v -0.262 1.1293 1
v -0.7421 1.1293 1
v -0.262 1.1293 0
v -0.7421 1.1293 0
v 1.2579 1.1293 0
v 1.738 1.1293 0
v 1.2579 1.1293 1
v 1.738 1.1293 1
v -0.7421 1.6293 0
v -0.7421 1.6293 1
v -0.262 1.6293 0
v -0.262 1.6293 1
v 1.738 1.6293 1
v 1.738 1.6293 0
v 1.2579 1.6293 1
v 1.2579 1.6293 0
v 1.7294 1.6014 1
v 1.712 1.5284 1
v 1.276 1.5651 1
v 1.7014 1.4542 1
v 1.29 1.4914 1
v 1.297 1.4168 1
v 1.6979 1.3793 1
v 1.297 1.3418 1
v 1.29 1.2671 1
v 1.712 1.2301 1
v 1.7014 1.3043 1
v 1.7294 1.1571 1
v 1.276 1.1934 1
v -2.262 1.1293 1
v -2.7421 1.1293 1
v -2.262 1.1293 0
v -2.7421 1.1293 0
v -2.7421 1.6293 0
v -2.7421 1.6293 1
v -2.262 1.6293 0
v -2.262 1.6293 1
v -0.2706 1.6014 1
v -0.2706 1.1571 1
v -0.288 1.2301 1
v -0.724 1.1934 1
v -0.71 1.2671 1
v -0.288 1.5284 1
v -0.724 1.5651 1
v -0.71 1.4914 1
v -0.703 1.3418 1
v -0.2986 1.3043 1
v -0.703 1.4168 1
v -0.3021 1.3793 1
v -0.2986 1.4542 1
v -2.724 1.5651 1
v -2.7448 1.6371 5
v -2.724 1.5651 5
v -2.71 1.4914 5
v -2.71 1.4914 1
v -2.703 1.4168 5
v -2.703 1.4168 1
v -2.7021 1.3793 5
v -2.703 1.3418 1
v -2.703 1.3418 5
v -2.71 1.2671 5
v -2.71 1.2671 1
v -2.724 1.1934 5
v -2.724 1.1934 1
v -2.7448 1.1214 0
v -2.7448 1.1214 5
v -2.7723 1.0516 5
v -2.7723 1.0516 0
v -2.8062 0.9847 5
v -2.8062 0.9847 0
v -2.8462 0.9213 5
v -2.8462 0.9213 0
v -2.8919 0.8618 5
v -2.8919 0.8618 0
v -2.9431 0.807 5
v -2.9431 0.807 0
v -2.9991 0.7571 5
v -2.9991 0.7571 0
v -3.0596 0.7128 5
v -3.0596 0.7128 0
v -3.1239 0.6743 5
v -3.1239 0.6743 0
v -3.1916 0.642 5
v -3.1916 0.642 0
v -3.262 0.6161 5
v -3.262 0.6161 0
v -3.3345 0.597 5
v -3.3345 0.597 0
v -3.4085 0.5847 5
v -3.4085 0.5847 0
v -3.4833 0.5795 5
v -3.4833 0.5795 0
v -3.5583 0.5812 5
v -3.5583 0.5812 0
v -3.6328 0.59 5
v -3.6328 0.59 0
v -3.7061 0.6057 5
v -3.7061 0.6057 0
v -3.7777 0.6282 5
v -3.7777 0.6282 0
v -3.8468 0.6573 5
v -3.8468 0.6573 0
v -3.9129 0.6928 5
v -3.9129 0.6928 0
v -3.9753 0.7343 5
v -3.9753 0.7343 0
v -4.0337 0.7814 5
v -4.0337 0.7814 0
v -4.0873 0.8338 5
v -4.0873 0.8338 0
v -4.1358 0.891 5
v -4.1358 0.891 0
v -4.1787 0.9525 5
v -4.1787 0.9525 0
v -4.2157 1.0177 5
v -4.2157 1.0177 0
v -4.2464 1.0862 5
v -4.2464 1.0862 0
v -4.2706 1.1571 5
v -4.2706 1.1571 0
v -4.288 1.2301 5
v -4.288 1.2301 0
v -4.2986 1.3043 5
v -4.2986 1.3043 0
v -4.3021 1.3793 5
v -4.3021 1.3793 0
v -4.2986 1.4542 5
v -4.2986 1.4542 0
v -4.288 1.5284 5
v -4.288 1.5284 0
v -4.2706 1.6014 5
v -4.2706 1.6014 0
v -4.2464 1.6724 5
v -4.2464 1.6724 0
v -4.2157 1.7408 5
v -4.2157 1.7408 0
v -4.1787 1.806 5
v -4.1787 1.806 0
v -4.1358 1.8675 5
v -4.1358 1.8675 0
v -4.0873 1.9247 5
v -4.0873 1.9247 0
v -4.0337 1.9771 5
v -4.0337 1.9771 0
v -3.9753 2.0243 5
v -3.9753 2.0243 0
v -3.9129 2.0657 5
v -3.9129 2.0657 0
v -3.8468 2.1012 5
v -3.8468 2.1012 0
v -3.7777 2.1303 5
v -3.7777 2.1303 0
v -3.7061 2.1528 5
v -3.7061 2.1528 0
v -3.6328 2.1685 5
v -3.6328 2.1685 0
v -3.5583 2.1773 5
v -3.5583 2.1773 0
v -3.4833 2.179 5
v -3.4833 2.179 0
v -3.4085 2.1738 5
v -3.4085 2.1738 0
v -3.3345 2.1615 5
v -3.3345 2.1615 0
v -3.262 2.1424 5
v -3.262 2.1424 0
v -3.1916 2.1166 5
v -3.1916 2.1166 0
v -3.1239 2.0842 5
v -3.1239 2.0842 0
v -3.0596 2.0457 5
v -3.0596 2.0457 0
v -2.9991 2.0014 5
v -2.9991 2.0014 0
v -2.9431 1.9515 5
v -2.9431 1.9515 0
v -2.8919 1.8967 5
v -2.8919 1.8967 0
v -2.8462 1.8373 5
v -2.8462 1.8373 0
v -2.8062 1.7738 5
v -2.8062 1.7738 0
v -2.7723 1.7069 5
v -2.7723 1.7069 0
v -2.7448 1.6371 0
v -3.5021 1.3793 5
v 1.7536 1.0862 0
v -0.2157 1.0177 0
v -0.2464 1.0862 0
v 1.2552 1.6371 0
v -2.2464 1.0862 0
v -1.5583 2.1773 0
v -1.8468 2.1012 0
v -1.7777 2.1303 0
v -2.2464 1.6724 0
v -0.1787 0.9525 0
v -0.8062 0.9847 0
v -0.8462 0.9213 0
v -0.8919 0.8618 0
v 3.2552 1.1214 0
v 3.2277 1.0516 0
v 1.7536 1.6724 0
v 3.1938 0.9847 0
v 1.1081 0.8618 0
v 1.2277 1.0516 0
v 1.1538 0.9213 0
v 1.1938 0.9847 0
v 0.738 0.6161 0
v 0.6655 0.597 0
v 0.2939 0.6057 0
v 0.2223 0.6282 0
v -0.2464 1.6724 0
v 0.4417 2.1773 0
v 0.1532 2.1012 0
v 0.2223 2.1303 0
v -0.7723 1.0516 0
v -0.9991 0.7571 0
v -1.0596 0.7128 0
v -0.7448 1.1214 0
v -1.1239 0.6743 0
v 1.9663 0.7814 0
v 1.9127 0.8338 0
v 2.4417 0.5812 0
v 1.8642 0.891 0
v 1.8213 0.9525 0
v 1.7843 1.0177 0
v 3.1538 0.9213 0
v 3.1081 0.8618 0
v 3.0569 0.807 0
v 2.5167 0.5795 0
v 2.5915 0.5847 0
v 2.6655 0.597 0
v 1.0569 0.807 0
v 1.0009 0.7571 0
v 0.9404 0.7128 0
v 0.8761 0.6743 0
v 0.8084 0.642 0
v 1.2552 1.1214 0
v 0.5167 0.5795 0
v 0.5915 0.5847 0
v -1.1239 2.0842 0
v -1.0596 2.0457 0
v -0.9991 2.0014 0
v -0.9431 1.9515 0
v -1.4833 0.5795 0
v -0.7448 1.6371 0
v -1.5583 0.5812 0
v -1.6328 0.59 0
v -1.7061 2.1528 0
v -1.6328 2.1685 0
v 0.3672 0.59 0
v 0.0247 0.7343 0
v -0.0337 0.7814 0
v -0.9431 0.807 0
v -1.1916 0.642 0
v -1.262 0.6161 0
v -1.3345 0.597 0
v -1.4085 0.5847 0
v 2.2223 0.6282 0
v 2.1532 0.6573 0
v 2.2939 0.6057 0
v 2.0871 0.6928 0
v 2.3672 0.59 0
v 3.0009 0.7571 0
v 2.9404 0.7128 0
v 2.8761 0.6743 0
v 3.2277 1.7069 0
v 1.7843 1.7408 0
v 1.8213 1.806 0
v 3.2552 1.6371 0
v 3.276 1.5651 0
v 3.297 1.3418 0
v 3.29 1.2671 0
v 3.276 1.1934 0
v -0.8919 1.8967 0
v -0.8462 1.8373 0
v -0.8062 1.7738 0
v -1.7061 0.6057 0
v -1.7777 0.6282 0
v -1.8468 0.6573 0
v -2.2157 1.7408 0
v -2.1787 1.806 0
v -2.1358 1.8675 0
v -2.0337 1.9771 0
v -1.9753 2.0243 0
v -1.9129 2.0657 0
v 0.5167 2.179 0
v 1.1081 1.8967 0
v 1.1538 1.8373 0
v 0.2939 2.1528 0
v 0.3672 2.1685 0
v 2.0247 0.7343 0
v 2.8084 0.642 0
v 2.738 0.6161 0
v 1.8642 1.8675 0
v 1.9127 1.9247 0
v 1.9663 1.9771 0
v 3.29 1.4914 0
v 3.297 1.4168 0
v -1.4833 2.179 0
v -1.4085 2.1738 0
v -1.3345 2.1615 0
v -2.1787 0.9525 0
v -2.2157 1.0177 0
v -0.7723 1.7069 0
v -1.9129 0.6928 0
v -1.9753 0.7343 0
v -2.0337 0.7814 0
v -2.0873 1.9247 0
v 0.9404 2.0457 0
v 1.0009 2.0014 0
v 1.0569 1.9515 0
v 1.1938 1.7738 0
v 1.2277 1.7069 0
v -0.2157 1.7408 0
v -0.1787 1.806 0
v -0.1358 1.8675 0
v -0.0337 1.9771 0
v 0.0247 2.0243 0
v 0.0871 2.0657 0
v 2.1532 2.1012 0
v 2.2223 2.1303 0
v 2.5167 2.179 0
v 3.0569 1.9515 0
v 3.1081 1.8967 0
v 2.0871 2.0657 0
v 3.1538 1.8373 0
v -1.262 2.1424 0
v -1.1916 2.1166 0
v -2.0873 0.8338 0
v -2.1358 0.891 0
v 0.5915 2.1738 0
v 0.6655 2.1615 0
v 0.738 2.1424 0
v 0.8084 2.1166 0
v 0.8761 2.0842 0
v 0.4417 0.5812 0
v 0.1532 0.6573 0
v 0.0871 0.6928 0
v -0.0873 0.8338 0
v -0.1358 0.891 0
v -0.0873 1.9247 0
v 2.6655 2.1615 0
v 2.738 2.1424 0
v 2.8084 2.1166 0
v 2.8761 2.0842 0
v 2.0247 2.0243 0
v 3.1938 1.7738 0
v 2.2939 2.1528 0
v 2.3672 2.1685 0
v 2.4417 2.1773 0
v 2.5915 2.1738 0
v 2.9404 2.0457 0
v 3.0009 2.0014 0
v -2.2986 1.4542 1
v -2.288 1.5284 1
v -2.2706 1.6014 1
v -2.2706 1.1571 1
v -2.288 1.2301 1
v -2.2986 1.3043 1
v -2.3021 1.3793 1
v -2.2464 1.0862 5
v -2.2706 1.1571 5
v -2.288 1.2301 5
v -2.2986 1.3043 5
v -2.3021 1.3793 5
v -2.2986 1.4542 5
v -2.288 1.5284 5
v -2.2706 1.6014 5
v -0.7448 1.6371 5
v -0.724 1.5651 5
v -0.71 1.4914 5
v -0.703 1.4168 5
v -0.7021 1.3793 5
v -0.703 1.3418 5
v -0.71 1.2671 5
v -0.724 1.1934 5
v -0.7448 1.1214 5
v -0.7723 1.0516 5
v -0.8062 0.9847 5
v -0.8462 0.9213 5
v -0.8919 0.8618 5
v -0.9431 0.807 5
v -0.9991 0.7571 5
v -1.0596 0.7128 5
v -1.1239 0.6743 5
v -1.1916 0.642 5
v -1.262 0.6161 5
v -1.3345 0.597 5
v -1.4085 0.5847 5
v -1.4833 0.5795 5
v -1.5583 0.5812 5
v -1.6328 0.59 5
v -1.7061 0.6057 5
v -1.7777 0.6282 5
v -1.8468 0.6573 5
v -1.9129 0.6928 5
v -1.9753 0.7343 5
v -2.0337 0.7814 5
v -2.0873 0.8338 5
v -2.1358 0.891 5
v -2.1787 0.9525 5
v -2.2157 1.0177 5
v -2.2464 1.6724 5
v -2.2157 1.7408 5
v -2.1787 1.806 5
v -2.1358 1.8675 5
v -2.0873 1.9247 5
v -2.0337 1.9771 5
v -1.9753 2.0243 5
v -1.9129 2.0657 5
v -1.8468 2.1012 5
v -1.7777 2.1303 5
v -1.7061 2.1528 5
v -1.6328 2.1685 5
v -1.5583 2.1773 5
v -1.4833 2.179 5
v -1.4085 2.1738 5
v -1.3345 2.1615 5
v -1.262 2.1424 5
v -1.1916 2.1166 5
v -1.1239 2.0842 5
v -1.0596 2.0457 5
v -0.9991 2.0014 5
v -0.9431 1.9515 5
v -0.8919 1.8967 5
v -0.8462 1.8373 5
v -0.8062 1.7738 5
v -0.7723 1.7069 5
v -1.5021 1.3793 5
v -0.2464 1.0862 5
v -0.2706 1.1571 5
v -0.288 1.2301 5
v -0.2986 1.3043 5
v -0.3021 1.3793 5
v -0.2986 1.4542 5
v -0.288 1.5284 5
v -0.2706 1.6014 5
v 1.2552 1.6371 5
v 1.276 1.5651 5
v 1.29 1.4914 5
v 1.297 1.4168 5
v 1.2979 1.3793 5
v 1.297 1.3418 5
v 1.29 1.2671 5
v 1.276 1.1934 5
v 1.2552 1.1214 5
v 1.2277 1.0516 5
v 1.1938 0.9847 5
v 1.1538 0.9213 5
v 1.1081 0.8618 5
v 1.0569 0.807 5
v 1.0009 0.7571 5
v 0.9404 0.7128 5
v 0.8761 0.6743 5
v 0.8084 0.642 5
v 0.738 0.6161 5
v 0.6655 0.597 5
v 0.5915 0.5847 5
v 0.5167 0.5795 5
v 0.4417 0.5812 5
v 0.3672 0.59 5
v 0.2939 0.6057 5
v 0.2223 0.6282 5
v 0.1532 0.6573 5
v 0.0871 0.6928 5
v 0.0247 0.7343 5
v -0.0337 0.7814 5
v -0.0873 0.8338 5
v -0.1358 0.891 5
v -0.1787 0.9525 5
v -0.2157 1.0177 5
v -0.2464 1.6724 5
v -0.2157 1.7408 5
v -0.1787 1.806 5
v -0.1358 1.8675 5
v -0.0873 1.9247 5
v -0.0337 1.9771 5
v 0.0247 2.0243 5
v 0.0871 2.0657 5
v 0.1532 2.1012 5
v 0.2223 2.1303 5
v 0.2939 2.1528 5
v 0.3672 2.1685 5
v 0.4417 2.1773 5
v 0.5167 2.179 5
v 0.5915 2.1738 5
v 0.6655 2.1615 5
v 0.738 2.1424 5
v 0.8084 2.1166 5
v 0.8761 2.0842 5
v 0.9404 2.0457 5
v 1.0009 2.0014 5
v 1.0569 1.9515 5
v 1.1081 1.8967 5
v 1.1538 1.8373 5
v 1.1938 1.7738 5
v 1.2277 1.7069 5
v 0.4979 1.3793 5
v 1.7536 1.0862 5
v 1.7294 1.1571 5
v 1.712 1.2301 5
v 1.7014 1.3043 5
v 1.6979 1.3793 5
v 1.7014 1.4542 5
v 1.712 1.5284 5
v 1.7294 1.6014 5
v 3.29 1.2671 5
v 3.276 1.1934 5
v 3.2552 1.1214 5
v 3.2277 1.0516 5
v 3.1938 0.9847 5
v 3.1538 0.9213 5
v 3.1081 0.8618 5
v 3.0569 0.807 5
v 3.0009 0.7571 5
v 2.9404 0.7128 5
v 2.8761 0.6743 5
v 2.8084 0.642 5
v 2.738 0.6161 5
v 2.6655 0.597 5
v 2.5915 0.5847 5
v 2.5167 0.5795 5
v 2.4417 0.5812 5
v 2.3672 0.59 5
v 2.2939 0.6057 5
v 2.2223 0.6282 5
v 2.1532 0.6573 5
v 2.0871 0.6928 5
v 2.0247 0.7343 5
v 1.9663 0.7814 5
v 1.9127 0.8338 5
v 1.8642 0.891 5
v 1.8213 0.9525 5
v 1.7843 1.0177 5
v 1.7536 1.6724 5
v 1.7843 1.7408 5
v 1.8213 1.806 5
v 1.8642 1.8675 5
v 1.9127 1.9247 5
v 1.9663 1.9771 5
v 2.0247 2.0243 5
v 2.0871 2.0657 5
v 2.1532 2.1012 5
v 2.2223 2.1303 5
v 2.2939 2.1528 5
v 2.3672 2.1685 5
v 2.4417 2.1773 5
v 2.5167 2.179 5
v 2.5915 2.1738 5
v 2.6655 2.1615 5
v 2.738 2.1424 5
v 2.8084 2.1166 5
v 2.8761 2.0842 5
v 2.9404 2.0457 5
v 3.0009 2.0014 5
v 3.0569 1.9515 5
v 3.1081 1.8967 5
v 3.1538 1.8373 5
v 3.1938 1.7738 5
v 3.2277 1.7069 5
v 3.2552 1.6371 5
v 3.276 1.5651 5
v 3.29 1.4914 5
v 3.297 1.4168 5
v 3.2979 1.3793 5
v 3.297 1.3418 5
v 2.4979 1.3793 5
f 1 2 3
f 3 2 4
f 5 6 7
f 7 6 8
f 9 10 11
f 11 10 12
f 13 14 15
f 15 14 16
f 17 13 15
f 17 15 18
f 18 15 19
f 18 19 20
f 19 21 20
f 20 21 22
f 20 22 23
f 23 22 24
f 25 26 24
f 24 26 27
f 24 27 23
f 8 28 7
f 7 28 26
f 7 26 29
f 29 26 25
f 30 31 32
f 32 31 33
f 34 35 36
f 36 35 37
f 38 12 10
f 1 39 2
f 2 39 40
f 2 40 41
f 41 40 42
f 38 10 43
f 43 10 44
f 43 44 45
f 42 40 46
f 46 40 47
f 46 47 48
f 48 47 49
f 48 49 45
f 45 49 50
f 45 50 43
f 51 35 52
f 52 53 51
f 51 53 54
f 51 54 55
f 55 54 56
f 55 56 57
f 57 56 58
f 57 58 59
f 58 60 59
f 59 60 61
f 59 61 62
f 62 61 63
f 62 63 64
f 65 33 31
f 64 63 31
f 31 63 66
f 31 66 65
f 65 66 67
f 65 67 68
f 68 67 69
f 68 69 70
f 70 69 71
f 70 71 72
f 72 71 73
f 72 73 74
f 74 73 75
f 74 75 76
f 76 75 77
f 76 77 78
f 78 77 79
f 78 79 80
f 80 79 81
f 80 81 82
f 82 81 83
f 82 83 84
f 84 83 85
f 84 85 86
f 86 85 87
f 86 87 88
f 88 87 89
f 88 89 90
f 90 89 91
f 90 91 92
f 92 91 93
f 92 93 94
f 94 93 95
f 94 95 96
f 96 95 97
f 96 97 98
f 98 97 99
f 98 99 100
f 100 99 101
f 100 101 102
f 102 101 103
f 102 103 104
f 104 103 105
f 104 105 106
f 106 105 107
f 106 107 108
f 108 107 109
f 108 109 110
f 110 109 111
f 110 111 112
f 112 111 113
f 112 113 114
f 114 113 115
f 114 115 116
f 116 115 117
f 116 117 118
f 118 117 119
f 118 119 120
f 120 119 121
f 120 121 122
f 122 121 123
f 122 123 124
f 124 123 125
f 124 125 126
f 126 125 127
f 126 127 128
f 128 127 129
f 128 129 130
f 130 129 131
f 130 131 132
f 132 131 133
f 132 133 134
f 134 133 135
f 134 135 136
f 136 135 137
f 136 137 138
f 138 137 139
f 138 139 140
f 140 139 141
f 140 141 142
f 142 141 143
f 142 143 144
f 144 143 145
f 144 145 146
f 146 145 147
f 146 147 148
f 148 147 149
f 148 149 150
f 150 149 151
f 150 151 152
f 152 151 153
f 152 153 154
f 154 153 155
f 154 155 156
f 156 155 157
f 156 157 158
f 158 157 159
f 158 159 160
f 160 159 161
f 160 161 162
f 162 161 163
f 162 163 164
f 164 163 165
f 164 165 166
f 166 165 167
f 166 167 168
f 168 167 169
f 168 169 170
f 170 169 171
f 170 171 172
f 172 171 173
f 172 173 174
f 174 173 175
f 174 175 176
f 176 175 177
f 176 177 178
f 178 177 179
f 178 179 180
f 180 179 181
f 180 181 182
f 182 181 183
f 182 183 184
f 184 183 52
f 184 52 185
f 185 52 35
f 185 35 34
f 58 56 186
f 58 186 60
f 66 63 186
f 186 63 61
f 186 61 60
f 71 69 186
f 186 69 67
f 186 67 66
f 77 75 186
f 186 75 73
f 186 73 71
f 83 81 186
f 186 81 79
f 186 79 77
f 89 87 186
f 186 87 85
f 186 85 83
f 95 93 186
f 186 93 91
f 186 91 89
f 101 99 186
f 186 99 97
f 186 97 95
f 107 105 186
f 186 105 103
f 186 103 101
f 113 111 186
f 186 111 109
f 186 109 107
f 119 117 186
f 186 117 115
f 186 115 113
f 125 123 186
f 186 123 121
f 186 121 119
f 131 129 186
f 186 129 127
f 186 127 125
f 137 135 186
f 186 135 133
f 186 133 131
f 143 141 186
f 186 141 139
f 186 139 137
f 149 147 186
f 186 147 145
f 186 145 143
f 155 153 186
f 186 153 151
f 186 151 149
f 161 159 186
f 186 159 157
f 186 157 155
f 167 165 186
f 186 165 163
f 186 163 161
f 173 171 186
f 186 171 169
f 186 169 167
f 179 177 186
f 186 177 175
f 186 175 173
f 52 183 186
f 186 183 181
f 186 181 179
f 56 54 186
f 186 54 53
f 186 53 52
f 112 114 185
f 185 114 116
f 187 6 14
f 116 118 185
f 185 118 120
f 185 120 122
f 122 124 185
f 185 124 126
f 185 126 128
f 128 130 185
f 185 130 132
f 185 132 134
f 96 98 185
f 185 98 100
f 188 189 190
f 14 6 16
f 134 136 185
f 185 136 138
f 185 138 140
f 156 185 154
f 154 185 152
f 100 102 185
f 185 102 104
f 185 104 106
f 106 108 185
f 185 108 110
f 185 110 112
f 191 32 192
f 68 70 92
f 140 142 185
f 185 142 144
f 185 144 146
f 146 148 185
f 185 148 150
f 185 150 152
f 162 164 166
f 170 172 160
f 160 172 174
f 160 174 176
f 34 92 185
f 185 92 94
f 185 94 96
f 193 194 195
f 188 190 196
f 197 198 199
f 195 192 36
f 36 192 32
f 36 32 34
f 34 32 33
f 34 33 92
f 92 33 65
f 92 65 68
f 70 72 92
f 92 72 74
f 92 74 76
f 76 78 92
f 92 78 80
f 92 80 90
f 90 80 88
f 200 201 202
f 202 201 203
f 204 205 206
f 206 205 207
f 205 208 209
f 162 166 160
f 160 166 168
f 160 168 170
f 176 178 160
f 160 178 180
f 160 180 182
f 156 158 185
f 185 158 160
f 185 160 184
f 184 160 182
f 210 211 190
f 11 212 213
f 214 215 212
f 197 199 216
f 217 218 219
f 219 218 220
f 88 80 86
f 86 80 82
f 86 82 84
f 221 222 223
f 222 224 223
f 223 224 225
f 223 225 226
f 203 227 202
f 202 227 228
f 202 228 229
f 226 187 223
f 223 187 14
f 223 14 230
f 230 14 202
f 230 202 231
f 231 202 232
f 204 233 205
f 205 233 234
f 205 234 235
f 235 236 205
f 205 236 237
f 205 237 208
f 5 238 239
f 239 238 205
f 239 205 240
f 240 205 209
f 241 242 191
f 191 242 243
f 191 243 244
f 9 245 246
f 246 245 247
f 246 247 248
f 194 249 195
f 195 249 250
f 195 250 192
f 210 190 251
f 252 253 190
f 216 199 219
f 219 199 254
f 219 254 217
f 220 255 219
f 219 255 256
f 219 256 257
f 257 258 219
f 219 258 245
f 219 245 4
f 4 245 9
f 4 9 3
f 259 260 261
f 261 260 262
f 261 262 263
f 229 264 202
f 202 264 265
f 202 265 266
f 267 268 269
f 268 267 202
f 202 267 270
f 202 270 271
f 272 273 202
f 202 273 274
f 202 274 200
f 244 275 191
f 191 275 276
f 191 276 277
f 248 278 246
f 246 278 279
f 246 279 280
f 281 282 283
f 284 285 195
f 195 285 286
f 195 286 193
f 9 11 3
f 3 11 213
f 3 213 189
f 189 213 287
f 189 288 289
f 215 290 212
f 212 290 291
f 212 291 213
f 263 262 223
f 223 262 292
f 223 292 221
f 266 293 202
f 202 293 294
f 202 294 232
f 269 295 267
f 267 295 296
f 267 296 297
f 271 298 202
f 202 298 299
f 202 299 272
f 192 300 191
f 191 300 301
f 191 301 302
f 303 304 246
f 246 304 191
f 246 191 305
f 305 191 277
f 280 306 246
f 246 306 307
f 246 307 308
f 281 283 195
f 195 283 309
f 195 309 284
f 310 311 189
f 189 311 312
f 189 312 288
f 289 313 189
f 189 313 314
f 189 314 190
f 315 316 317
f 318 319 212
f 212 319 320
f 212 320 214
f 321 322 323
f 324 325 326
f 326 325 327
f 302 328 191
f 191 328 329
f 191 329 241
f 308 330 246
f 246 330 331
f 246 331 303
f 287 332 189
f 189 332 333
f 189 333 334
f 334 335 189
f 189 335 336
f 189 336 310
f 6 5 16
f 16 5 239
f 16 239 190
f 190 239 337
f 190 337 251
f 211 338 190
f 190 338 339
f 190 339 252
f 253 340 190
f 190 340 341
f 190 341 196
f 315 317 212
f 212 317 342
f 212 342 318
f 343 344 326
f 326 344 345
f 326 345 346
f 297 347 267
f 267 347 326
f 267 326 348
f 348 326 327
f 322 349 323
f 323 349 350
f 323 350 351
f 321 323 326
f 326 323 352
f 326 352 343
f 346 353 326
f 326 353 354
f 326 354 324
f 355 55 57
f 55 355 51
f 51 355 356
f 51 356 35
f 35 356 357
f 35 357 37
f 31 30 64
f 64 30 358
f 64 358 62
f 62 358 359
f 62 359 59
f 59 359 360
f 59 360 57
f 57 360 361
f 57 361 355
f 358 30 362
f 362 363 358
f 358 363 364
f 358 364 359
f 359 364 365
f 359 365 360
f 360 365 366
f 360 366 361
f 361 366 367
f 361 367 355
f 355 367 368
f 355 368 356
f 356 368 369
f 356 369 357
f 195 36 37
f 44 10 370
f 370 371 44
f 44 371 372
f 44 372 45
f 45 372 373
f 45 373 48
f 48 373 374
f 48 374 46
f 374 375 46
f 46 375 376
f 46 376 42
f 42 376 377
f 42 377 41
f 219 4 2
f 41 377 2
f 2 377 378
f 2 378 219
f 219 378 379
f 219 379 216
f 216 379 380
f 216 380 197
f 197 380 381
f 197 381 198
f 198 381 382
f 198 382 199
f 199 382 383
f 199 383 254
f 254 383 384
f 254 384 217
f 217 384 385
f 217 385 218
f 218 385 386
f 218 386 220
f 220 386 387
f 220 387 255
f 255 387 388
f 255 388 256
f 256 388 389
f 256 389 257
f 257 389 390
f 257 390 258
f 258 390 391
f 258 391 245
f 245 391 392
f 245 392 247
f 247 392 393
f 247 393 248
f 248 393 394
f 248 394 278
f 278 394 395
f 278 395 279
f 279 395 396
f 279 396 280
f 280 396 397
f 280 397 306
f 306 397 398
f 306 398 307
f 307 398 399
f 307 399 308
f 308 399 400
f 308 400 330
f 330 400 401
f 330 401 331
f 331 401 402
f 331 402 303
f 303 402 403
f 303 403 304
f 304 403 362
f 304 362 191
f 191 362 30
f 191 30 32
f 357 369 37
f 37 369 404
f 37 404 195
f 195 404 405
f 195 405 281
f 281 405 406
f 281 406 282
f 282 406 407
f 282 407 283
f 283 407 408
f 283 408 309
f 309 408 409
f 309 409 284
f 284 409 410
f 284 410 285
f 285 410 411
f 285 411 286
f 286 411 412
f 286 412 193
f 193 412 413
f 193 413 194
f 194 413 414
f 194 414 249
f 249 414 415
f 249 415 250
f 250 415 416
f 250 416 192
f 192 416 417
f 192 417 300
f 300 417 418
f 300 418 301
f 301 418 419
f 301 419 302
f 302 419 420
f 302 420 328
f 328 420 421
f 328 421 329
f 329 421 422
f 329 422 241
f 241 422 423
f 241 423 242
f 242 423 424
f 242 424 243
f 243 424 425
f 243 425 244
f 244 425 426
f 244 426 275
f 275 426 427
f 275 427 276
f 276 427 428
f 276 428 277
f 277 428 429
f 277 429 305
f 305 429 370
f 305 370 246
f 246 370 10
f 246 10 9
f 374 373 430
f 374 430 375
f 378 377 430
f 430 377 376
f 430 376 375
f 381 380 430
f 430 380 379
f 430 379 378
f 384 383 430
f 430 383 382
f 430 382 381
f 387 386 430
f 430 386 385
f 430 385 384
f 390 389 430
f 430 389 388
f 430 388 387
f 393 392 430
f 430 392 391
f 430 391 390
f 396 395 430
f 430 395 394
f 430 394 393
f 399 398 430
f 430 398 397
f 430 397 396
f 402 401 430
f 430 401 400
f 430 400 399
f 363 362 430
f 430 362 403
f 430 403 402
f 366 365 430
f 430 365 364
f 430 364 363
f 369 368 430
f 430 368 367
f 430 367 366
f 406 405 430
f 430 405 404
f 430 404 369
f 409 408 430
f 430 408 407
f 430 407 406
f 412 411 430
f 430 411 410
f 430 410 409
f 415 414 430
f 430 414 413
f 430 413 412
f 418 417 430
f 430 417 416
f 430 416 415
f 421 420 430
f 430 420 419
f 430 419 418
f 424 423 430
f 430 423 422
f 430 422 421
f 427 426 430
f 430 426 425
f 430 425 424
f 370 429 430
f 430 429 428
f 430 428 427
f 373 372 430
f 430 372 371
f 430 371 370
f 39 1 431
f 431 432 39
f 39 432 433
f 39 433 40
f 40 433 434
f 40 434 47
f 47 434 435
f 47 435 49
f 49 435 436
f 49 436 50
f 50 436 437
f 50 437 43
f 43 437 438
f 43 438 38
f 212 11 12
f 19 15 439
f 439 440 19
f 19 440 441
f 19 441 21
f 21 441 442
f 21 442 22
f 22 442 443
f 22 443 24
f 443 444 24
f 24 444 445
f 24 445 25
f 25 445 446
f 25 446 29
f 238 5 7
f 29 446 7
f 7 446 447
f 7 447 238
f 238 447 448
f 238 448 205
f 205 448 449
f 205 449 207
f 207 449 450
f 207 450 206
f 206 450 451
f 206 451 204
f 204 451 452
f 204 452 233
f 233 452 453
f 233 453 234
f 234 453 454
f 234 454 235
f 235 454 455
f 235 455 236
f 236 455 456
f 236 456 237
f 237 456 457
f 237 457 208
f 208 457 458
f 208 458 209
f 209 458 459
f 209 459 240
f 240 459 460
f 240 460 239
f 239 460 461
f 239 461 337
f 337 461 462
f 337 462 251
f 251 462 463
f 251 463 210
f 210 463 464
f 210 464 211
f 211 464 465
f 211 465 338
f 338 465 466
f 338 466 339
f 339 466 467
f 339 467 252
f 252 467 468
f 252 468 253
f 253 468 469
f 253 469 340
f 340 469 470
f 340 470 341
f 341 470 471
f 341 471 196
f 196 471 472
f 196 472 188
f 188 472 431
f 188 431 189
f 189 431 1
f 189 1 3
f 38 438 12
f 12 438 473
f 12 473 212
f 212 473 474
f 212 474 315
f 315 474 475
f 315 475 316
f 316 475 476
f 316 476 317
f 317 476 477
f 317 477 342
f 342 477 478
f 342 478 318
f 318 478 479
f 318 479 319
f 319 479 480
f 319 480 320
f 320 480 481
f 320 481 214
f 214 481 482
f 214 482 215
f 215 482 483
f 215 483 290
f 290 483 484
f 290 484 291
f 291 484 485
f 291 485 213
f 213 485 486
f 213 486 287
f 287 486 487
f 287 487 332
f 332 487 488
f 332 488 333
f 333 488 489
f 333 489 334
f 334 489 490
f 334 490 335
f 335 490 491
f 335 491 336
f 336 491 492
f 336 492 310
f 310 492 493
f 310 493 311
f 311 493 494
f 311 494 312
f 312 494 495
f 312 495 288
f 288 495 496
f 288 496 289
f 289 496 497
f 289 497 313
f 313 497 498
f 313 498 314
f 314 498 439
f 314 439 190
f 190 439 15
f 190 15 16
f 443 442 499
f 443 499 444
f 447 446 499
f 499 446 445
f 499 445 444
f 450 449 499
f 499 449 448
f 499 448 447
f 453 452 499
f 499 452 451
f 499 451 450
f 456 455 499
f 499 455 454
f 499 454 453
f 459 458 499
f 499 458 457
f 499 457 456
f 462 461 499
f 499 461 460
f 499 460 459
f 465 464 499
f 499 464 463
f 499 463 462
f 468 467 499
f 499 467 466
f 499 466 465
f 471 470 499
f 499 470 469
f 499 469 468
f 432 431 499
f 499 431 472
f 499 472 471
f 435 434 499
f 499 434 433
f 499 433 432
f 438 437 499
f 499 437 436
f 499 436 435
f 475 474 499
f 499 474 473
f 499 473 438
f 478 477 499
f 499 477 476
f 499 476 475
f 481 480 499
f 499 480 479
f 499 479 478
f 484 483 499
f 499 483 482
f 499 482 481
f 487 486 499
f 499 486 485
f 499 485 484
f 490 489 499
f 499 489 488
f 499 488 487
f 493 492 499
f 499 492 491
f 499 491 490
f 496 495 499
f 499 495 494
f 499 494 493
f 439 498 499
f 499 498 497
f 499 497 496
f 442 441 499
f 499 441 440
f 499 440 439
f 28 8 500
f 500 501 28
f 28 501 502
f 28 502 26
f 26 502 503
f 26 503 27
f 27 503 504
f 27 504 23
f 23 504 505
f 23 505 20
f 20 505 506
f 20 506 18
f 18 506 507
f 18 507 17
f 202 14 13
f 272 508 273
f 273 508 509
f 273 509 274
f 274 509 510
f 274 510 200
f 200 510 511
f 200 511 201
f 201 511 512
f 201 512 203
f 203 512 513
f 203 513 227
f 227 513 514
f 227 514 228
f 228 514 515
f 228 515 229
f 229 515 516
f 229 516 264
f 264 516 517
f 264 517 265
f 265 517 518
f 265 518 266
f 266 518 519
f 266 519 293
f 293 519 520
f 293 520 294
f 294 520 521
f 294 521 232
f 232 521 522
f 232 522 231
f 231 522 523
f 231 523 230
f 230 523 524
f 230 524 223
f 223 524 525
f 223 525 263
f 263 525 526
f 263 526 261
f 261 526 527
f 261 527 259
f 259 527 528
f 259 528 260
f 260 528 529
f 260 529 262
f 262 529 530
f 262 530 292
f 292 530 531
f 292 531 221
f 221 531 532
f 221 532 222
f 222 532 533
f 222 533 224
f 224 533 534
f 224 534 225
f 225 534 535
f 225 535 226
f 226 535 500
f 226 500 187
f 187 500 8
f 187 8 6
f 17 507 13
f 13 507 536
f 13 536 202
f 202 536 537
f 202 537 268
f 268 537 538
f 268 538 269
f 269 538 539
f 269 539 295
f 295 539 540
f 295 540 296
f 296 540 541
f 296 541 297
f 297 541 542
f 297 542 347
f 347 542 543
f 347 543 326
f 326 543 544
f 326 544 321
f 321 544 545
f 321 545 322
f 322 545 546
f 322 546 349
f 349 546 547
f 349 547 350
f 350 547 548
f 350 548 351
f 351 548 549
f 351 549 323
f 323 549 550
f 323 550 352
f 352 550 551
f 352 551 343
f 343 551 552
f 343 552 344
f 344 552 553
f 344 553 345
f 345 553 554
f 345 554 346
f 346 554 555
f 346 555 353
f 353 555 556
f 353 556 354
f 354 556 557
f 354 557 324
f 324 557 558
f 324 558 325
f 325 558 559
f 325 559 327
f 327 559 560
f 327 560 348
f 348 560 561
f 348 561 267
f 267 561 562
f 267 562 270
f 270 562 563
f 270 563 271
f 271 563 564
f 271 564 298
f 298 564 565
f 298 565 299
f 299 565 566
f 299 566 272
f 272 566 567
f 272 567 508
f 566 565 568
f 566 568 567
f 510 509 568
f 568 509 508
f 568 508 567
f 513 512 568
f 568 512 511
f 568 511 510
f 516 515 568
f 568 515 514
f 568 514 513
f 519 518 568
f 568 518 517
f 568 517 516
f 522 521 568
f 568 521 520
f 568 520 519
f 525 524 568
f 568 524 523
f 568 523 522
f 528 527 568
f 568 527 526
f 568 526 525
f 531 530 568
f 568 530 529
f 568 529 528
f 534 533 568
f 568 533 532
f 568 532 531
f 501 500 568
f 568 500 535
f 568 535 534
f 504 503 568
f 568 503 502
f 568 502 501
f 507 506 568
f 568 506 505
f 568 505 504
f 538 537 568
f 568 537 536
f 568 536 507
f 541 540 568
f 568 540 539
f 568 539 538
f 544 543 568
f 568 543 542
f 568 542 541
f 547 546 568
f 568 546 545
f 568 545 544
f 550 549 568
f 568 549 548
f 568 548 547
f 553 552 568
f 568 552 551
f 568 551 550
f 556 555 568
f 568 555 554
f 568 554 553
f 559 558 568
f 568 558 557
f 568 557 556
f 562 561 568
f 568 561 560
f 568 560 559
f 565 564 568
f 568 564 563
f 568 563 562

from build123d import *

# Parameters (mm, degrees)
ESBO_O1_R                  = 0.8
RESSALTO_EXTRUS_O1_DEPTH   = 5
RESSALTO_EXTRUS_O1_2_DEPTH = 5
RESSALTO_EXTRUS_O1_3_DEPTH = 5
RESSALTO_EXTRUS_O1_4_DEPTH = 5
ESBO_O2_R                  = 0.8
ESBO_O2_W                  = 5
ESBO_O2_H                  = 0.5
RESSALTO_EXTRUS_O2_DEPTH   = 1


with BuildPart() as part:
    # Esboço1 → Ressalto-extrusão1 (new body)
    with BuildSketch(Plane.XY):
        with Locations((-3.502077011, 1.3792577)):
            Circle(ESBO_O1_R)
    extrude(amount=RESSALTO_EXTRUS_O1_DEPTH)



with BuildPart() as body_2:
    # Esboço1 → Ressalto-extrus_o1 2 (new body)
    with BuildSketch(Plane.XY):
        with Locations((-1.502077011, 1.3792577)):
            Circle(ESBO_O1_R)
    extrude(amount=RESSALTO_EXTRUS_O1_2_DEPTH)


with BuildPart() as body_3:
    # Esboço1 → Ressalto-extrus_o1 3 (new body)
    with BuildSketch(Plane.XY):
        with Locations((0.497922989, 1.3792577)):
            Circle(ESBO_O1_R)
    extrude(amount=RESSALTO_EXTRUS_O1_3_DEPTH)


with BuildPart() as body_4:
    # Esboço1 → Ressalto-extrus_o1 4 (new body)
    with BuildSketch(Plane.XY):
        with Locations((2.497922989, 1.3792577)):
            Circle(ESBO_O1_R)
    extrude(amount=RESSALTO_EXTRUS_O1_4_DEPTH)


with BuildPart() as part_1:
    add(part.part)

    add(body_2.part)  # Ressalto-extrusão2 merges body 2

    add(body_3.part)  # Ressalto-extrusão2 merges body 3

    add(body_4.part)  # Ressalto-extrusão2 merges body 4
    # Esboço2 → Ressalto-extrusão2 (add)
    with BuildSketch(Plane(origin=(0, 0, 0), x_dir=(-1, 0, 0), z_dir=(0, 0, -1))):
        with Locations((-2.497922989, 1.3792577)):
            Circle(ESBO_O2_R)
        with Locations((3.502077011, 1.3792577)):
            Circle(ESBO_O2_R)
        with Locations((0.502077011, 1.3792577)):
            Rectangle(ESBO_O2_W, ESBO_O2_H)
    extrude(amount=-RESSALTO_EXTRUS_O2_DEPTH)


solid = part_1.part
